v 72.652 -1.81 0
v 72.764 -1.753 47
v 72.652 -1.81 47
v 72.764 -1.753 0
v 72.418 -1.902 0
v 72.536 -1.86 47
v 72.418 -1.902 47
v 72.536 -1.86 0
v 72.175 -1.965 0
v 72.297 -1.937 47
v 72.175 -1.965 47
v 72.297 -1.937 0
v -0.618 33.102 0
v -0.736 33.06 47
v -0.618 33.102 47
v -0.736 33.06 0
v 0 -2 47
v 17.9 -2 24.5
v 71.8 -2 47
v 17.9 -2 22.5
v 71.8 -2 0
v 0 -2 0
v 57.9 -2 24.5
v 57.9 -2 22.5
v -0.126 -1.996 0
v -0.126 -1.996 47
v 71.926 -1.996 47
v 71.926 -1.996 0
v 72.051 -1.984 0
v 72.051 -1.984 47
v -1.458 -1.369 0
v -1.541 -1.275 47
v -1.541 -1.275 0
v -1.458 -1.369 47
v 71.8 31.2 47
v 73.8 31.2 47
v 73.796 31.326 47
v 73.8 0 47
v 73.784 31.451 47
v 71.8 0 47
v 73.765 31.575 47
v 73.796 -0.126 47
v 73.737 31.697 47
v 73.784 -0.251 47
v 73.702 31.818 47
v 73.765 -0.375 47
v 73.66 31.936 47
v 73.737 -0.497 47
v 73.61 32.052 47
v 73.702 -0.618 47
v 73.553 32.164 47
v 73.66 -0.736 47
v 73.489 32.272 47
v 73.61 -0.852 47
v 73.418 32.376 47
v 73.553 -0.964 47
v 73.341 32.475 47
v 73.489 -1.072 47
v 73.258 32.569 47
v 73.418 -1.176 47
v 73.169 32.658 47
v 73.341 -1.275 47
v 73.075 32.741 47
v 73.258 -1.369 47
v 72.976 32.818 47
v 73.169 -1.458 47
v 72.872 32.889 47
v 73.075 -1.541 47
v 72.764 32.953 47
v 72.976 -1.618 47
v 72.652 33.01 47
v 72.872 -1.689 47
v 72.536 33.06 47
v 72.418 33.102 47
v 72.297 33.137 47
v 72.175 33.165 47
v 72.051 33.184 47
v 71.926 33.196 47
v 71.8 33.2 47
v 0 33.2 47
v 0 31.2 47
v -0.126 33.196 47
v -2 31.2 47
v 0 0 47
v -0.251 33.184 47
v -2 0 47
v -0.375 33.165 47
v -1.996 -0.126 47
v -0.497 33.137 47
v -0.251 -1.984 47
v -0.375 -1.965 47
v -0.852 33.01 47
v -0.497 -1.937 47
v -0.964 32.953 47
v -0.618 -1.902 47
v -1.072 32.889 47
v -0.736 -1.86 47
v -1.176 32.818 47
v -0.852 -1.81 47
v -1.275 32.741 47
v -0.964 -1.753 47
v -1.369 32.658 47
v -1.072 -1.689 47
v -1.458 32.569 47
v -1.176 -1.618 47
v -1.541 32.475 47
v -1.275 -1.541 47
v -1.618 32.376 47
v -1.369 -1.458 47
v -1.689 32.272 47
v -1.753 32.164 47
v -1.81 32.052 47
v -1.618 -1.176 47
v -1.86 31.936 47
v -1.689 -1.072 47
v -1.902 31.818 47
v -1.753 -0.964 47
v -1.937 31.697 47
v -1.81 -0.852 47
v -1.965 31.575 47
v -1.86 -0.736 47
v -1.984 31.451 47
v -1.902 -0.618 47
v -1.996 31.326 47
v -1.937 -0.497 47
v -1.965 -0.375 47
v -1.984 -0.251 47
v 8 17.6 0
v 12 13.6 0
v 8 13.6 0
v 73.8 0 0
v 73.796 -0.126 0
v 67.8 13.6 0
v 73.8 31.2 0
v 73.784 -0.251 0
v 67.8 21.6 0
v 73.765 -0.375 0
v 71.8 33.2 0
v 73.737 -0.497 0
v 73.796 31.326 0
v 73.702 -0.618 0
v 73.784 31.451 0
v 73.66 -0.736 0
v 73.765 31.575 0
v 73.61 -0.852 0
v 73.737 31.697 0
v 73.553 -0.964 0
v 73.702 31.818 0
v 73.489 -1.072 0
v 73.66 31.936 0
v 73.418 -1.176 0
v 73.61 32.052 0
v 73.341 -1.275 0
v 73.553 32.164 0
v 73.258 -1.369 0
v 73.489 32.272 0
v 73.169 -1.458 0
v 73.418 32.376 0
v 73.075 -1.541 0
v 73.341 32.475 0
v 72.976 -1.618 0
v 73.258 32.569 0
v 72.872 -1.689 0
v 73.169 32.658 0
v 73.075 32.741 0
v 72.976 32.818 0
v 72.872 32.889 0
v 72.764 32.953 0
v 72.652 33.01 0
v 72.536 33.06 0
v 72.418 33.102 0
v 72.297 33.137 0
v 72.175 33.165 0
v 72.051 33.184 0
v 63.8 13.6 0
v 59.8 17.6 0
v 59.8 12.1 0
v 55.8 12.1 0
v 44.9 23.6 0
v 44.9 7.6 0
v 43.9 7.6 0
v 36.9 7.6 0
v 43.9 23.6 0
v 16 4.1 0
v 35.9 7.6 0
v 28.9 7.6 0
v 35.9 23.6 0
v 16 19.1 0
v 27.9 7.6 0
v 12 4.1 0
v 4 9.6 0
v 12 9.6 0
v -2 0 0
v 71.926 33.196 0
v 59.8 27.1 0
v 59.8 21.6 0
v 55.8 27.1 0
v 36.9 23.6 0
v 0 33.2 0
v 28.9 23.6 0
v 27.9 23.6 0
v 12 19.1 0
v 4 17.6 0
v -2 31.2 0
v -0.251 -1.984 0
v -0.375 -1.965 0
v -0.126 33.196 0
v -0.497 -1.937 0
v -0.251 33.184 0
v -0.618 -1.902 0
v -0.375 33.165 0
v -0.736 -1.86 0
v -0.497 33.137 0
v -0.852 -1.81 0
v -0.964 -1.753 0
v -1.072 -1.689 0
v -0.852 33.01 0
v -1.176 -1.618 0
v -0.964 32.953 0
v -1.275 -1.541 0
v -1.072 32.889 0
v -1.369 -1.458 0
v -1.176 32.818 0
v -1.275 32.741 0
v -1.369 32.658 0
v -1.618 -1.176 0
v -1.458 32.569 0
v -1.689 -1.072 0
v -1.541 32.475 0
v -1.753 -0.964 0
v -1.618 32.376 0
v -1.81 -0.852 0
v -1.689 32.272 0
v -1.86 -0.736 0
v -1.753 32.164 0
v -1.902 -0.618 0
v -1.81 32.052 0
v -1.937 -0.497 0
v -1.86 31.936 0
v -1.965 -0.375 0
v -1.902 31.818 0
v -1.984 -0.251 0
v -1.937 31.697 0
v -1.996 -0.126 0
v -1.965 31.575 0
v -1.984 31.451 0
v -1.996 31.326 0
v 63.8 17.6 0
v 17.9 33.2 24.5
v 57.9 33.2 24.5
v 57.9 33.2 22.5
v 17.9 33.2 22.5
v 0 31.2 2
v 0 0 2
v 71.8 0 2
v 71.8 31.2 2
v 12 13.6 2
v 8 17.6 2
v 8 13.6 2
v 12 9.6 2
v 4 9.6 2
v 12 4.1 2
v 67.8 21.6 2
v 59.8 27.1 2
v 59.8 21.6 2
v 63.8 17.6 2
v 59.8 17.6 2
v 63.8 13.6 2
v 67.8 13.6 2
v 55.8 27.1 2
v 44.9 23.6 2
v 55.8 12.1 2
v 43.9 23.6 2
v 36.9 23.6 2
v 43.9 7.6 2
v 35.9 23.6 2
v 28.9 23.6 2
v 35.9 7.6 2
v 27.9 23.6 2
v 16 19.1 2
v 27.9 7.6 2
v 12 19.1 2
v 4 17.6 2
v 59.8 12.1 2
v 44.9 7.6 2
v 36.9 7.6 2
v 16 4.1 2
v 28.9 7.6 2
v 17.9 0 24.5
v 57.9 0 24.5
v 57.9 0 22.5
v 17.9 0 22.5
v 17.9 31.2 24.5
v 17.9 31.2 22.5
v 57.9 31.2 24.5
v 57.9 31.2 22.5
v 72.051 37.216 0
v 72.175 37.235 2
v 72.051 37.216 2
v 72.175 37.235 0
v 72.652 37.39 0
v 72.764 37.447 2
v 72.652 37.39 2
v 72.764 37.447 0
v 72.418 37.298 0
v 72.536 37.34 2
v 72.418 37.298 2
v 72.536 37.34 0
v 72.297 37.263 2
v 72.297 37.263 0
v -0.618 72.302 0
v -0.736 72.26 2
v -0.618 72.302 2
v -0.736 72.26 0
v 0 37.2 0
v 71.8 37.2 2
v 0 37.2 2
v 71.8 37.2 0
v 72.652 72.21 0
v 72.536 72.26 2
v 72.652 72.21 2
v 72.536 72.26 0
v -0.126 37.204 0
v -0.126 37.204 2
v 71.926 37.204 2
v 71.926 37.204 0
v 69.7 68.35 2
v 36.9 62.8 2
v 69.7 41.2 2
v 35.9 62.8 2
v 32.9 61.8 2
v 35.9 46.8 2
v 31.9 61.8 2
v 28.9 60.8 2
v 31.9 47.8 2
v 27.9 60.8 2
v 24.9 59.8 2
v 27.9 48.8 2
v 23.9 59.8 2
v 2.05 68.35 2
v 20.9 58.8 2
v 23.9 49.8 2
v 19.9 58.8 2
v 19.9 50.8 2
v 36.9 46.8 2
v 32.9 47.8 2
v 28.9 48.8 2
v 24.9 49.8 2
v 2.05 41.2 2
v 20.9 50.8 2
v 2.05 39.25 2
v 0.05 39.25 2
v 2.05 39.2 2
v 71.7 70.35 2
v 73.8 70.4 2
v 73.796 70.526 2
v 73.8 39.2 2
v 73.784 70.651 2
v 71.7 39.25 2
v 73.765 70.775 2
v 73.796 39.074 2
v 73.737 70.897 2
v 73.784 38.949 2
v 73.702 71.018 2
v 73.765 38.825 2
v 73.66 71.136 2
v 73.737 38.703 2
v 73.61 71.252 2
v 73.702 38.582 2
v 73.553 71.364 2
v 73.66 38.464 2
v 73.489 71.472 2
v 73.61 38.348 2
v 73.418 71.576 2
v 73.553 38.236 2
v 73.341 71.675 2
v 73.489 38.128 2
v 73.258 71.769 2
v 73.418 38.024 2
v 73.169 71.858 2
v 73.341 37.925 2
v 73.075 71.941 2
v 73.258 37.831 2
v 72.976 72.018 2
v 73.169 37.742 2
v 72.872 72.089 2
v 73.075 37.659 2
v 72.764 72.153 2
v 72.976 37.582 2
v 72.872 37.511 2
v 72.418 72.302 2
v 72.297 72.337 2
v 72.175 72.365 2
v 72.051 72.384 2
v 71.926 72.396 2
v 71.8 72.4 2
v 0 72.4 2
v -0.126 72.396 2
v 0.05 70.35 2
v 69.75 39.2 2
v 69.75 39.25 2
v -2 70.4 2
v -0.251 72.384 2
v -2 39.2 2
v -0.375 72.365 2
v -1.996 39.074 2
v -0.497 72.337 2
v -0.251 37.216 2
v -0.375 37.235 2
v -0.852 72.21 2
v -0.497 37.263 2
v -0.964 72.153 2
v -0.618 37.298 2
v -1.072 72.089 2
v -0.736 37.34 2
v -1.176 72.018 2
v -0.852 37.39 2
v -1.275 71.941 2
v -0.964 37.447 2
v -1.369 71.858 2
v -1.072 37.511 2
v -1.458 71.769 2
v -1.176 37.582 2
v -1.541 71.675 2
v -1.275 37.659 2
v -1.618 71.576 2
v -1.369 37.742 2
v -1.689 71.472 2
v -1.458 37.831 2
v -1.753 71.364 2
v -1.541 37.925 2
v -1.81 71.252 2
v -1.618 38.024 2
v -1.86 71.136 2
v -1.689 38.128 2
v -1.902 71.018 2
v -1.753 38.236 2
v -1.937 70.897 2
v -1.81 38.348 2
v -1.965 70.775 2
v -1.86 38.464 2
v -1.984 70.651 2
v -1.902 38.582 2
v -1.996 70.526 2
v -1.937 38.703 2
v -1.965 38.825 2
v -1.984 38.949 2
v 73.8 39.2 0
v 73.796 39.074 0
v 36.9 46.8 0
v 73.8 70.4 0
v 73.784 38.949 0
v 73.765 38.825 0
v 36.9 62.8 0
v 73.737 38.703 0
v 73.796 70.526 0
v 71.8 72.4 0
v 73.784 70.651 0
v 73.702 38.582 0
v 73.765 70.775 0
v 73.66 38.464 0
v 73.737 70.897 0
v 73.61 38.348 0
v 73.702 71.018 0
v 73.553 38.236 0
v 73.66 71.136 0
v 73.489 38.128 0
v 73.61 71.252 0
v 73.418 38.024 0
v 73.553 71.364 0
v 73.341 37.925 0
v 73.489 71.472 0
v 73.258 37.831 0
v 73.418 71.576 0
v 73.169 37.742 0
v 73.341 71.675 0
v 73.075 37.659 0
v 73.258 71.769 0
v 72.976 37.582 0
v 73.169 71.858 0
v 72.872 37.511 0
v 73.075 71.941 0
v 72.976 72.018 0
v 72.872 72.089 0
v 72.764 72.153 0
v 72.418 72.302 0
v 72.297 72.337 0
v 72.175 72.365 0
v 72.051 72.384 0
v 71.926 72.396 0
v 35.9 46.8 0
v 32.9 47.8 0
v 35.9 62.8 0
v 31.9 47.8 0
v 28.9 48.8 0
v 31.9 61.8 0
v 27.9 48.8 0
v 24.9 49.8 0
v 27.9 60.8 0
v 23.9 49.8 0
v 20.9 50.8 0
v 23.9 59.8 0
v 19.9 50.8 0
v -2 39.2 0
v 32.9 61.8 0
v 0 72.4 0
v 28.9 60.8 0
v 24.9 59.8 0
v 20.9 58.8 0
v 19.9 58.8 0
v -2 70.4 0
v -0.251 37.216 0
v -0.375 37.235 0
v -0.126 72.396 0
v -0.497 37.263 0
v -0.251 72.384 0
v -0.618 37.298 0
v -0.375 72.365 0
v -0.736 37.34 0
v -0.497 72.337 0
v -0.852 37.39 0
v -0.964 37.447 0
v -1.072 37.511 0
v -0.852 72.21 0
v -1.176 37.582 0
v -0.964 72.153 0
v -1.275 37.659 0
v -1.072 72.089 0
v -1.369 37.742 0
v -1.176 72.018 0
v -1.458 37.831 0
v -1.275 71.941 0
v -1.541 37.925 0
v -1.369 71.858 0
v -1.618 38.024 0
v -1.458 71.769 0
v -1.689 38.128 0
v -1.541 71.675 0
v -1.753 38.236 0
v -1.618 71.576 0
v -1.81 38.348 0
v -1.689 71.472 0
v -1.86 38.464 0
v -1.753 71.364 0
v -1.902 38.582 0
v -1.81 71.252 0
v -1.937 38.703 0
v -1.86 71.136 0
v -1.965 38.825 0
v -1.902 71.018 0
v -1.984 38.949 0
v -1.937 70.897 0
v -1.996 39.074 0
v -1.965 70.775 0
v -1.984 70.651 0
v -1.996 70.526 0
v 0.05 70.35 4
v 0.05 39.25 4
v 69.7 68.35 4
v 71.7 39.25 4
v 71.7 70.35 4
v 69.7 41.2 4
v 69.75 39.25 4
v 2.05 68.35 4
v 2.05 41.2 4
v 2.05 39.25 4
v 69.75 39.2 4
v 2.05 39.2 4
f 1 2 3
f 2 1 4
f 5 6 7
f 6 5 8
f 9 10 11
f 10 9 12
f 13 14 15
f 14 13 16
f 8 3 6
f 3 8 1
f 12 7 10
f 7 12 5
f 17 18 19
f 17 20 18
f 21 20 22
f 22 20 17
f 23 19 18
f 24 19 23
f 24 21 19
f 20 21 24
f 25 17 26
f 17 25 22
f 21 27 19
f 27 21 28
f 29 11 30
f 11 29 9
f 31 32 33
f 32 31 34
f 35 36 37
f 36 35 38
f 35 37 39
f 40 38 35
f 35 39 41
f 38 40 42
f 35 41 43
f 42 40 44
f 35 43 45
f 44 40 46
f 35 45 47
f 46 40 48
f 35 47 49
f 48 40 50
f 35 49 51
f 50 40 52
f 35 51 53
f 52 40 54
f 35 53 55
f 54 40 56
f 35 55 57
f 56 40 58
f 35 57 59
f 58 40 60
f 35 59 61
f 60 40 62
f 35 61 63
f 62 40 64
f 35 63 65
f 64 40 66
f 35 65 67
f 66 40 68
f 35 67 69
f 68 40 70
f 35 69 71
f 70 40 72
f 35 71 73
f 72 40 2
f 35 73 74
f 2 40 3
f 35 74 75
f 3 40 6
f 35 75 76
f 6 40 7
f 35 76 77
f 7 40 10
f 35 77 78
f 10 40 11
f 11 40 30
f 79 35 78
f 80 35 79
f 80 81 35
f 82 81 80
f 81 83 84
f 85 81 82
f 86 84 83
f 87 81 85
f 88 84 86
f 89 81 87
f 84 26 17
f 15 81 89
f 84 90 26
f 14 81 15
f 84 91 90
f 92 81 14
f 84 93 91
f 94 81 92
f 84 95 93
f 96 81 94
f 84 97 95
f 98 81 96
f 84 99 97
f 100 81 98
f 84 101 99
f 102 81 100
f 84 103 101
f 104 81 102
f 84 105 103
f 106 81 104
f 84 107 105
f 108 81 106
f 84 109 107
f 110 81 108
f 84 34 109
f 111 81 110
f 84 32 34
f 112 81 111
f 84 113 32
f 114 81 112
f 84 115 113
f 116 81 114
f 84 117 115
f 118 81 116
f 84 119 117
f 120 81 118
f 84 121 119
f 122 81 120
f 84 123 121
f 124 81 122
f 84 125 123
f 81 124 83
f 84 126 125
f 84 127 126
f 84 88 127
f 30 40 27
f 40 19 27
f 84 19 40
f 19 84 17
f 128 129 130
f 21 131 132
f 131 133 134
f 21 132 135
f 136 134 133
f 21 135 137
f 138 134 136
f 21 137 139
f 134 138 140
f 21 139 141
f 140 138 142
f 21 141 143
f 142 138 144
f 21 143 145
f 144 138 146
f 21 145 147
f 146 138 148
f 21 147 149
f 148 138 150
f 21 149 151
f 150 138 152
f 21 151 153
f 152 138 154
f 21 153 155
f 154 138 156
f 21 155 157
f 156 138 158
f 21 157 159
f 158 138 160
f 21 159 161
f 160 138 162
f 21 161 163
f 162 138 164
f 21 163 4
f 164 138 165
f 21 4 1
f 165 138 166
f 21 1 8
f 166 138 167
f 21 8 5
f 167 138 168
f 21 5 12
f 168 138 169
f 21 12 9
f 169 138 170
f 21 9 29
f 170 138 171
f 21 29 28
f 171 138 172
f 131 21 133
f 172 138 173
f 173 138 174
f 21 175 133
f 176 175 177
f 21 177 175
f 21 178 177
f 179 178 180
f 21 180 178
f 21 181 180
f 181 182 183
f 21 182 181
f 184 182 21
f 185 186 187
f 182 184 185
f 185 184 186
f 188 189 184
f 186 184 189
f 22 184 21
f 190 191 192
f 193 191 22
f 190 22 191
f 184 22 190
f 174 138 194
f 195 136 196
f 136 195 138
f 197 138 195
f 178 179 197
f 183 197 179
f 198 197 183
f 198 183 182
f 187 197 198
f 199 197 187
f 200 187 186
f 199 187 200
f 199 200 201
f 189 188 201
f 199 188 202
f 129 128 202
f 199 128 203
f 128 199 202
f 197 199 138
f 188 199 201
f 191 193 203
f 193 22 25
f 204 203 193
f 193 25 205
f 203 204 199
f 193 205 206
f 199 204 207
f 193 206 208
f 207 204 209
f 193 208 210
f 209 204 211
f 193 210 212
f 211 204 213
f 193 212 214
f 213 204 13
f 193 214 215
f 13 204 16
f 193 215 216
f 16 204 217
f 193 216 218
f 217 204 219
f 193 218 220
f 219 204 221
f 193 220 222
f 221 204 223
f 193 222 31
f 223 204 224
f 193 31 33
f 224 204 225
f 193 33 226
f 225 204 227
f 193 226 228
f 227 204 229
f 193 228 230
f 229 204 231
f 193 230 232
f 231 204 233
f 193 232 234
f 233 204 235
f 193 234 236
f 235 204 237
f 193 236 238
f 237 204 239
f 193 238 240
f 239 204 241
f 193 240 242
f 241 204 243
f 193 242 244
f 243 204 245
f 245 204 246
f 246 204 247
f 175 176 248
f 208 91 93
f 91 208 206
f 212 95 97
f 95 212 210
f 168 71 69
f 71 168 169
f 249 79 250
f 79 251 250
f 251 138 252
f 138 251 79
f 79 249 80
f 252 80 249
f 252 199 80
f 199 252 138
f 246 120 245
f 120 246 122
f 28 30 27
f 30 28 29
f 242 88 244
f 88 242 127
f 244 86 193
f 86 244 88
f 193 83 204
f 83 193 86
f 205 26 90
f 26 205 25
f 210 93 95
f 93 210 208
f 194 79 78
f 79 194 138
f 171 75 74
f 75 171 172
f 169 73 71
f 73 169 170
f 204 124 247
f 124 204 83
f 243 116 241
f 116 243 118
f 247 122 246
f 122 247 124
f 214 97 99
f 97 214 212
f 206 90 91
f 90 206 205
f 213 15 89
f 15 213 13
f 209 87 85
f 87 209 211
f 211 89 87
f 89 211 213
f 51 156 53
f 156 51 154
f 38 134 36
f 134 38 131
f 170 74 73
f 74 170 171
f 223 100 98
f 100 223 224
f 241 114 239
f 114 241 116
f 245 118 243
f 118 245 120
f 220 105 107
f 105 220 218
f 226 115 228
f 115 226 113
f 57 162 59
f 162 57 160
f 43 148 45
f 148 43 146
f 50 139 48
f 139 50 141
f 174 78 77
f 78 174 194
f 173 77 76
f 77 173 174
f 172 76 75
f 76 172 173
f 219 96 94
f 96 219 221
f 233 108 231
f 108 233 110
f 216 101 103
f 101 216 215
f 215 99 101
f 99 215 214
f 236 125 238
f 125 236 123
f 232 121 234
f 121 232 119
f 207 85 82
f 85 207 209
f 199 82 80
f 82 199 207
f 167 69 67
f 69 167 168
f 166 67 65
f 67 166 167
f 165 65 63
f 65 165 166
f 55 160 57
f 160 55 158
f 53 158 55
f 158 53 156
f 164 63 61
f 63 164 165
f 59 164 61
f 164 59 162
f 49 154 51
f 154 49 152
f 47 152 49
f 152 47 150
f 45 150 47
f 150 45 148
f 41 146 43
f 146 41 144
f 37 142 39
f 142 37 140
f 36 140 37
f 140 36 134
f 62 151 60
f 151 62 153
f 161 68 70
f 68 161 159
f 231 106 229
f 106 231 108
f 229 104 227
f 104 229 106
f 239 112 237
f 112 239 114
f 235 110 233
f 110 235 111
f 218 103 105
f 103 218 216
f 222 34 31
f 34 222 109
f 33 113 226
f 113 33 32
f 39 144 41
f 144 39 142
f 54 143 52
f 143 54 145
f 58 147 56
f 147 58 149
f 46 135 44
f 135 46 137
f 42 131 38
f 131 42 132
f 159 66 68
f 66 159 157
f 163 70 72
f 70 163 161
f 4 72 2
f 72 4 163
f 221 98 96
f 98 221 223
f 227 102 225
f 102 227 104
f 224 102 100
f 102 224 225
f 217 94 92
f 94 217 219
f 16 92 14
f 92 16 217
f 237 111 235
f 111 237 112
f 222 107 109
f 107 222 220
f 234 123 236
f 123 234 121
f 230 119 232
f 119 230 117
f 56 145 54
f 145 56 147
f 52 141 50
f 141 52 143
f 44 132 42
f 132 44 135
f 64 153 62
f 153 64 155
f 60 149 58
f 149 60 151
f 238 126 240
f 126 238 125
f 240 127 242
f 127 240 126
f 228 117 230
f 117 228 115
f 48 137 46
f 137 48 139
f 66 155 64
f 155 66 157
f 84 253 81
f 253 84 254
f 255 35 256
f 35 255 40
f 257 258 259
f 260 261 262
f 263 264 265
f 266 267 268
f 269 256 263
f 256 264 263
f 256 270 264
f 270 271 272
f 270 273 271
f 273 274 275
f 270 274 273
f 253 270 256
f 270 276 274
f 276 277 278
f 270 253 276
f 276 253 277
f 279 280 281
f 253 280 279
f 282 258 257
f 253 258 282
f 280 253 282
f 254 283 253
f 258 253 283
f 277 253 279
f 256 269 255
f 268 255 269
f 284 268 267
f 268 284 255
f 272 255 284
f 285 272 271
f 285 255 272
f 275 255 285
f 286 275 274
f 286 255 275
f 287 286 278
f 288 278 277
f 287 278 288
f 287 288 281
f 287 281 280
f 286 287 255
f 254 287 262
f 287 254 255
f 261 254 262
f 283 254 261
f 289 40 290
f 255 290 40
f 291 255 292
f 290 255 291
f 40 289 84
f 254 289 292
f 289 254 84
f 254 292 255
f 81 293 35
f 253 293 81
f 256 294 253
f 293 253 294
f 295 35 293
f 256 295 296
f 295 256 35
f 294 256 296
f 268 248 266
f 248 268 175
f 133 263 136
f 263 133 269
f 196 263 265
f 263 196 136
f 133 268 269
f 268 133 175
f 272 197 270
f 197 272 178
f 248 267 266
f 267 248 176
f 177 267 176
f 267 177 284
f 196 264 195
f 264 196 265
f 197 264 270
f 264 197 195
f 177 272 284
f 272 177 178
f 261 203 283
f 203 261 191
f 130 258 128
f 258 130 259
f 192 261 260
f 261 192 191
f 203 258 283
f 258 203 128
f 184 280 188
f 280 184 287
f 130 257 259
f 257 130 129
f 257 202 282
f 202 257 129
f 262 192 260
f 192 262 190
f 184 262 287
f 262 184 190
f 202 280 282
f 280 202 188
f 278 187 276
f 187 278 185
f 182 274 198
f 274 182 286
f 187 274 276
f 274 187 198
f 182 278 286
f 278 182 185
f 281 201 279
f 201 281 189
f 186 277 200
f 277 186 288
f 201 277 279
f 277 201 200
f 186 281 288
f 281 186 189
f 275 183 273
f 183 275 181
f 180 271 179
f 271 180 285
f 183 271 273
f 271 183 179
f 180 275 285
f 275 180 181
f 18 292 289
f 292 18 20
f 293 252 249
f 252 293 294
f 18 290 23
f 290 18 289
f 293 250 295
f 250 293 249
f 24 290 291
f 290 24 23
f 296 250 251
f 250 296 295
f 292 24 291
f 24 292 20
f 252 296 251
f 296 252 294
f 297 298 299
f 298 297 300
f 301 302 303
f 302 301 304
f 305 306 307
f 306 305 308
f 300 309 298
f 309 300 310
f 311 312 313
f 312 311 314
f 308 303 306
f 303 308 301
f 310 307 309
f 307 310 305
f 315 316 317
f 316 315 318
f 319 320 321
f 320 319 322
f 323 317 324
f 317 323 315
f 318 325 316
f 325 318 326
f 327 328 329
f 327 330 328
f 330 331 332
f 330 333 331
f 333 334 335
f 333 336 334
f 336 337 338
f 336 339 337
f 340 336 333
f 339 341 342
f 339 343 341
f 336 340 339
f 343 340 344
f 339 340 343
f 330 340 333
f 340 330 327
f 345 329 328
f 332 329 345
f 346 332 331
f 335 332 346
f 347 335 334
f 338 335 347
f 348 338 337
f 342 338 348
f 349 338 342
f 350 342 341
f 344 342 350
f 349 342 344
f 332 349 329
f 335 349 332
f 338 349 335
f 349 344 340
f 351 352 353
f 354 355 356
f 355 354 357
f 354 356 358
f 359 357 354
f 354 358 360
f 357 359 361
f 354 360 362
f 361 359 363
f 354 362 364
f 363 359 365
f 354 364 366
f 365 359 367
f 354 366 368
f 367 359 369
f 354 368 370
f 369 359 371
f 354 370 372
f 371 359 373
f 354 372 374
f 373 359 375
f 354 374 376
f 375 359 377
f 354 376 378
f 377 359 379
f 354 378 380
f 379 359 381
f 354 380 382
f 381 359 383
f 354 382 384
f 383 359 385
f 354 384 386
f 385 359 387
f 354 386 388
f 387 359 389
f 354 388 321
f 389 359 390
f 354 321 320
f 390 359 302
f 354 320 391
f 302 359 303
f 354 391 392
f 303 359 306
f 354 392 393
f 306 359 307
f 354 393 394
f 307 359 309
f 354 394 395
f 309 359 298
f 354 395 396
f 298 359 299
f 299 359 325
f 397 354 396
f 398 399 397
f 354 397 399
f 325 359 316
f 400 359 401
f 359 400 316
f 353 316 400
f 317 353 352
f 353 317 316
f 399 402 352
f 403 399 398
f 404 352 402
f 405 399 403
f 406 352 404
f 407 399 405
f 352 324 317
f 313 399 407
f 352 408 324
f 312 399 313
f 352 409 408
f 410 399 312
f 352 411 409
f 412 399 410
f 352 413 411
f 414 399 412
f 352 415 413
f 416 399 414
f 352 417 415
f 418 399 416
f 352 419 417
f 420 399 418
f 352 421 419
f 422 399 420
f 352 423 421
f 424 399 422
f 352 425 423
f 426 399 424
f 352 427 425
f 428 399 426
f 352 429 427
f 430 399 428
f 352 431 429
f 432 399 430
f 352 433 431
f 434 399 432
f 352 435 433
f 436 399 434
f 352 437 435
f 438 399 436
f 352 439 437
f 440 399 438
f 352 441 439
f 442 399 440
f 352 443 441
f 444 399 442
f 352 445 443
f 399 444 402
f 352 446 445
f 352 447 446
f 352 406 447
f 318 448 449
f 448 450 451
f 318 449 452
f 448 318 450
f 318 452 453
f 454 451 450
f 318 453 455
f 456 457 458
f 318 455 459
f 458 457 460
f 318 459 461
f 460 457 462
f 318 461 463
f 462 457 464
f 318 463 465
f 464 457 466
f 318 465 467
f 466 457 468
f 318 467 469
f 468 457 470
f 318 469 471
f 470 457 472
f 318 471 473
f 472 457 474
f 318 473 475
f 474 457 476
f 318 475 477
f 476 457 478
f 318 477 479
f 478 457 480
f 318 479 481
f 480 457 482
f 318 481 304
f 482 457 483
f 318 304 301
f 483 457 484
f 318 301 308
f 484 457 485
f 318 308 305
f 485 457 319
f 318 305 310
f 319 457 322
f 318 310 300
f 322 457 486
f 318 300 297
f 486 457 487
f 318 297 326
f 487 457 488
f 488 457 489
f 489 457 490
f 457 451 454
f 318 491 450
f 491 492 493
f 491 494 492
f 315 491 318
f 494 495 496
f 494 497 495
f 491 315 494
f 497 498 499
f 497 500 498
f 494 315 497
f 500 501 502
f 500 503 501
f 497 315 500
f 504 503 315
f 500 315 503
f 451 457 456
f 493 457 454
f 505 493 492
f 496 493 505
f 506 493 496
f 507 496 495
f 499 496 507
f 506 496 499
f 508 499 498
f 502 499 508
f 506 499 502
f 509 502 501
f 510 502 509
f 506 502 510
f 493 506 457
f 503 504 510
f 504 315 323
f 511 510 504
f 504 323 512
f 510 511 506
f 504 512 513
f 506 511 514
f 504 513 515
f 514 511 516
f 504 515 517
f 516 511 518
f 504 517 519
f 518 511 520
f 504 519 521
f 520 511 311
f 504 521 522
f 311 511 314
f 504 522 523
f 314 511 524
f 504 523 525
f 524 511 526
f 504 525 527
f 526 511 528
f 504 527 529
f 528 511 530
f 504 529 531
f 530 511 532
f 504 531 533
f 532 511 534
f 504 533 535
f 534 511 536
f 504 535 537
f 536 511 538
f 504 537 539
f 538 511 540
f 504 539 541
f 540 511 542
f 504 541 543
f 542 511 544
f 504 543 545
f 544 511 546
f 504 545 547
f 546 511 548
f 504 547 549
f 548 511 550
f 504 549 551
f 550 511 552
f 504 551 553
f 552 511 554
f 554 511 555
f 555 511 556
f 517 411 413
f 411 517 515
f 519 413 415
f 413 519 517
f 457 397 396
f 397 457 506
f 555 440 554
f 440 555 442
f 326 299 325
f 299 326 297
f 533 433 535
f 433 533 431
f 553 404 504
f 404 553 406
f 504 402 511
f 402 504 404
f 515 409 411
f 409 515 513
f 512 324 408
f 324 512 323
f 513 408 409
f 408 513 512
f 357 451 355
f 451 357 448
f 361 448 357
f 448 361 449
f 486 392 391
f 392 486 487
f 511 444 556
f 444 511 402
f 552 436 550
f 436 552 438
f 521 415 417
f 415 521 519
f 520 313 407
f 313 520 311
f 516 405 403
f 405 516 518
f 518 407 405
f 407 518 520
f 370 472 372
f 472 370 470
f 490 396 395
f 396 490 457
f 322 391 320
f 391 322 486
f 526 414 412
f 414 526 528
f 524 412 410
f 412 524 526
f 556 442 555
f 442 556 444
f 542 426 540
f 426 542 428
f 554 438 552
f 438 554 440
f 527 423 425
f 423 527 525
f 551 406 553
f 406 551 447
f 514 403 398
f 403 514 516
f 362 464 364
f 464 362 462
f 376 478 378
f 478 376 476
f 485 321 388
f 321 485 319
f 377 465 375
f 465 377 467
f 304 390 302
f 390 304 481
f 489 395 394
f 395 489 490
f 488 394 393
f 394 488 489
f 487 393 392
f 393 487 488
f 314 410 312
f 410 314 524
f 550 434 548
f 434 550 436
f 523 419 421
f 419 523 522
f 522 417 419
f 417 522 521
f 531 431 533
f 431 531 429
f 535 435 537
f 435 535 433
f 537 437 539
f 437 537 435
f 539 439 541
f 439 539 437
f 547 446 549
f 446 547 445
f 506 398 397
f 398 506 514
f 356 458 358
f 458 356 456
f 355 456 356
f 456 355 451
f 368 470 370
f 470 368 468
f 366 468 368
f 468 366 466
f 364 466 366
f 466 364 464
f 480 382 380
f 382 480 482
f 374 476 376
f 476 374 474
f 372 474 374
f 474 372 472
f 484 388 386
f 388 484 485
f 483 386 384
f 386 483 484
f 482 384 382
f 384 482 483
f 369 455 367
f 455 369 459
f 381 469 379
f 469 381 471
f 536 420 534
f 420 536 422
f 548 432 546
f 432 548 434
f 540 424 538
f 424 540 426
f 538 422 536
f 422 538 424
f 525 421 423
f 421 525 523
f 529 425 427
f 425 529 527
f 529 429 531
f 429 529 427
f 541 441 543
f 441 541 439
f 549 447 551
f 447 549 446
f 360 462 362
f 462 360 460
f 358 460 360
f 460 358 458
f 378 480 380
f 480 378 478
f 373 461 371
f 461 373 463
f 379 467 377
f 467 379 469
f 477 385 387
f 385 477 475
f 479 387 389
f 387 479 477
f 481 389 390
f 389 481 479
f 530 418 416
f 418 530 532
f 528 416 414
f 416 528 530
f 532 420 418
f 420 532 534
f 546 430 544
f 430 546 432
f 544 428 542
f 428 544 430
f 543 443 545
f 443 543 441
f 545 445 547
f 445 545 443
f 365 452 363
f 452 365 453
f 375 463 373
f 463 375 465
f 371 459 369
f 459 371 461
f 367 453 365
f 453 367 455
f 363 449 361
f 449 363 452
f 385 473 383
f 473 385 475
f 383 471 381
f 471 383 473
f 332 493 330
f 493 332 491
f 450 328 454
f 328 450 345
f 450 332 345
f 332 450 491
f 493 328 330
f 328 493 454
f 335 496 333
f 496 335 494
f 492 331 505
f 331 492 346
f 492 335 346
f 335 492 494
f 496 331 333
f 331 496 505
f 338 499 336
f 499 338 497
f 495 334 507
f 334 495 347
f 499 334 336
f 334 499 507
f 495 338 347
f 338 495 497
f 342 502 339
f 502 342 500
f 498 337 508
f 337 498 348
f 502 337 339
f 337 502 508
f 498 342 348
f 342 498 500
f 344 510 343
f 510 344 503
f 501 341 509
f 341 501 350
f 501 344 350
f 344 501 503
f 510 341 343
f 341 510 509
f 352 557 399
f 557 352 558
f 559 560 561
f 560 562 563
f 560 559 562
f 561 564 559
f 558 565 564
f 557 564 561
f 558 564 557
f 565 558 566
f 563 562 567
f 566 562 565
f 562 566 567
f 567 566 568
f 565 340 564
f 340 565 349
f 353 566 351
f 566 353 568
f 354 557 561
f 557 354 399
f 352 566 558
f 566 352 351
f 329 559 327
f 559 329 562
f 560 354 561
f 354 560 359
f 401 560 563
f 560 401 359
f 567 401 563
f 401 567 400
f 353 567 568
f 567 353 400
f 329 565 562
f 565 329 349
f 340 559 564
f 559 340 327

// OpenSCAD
//常量定义
thick = 2;	        //盒壁厚度,盒子外圆角半径
width = 31.2;	       //内径净宽
hight = 43;	       //内径净高
long = 71.8;         //内径净长
 
hh = 6.5;          //slices倍数

xlong=thick * 2 + long;   //外径长度＝底厚＋内径长度＋盖子厚度
ylong = width+thick*2;   //外径宽度 = 底厚＋内径宽度＋盖子厚度
zlong = hight + thick*2;


//卡扣中心柱厚度
bathc = 4;

//卡扣底部长方体长度
balon = 15;



//---------------------------------------盒子部分

difference() {
	

    //外盒
    linear_extrude(height = hight + thick * 2, twist = 0, slices = hh*10) {
    offset(r = thick,$fn=100) {
      square([long ,width], center = false);
    }
   }  


	//内盒，挖空。
	translate([0,0,thick])
	{	
		cube([long,width,hight+ thick]);
	}
    

    //卡扣滑道前
    translate([long - bathc * 2, (width - bathc)/2,0])
	{	
		cube([bathc , bathc * 2 ,thick + 1]);
	}
    translate([long - bathc * 4,(width + bathc)/2,0])
	{	
       
		cube([bathc * 2,bathc ,thick + 1]);
	}

    translate([long - bathc * 4, (width + bathc)/2 - (balon - bathc)/2 ,0])
	{	
		cube([bathc,balon ,thick + 1]);
	}
    


    //卡扣滑道后
    translate([bathc, width/2 - 1.5 * bathc,0])
	{	
		cube([bathc, bathc * 2,thick + 1]);
	}
   
    translate([bathc * 2, width/2 - 1.5 * bathc,0])
	{	
		cube([bathc * 2,bathc,thick + 1]);
	}
    
    translate([bathc * 3, width/2 - 1.5 * bathc - (balon - bathc) /2,0])
	{	
		cube([bathc,balon,thick + 1]);
	}
    
    
    
    //盒子底部挖空通风
    translate([long/2, width/2 - 8,0])
	{	
		cube([1,16,thick + 2]);
    }
     
    translate([long/2 - 8,width/2 - 8,0])
	{	
		cube([1,16,thick + 2]);
	}
    
    translate([long/2 + 8,width/2 - 8,0])
	{	
		cube([1,16,thick + 2]);
	}
    

    //盒子侧壁挖空通风
    translate([xlong/2 - 20,-3,zlong/2 - 1 ])
	{	
		cube([40,50,thick]);
	}
    
}




//------------------------------------盖子部分

translate([0,ylong + 4,0]){
difference() {
    
    linear_extrude(thick, twist = 0, slices = hh*10) {
    offset(r = thick,$fn=100) {
      square([long ,width], center = false);
    }
   }  
    
	
    //盖子挖空通风
    translate([long/2,width/2 - 8,0])
	{	
		cube([1,16,thick + 2]);
	}
    
    translate([long/2 - 4,width/2 - 7,0])
	{	
		cube([1,14,thick + 2]);
	}
    translate([long/2 - 8,width/2 - 6,0])
	{	
		cube([1,12,thick + 2]);
	}
    
    translate([long/2 - 12,width/2 - 5,0])
	{	
		cube([1,10,thick + 2]);
	}
    
    translate([long/2 - 16,width/2 - 4,0])
	{	
		cube([1,8,thick + 2]);
	}
    
  }
  
   //形成边角挡格
   translate([0 + 0.05,0.05,thick])
   {	
		cube([thick,width - 0.1,thick]);
   }
   
   translate([long - thick - 0.1,0.05,thick])
   {	
       
		cube([thick,width - 0.1,thick]);
   }
   
   
   translate([thick + 0.05 ,0,thick])
   {	
		cube([long - thick * 2 - 0.1,thick,thick]);
   }
   
   
   translate([thick + 0.05 ,width - thick - 0.05,thick])
   {
		cube([long - thick * 2 - 0.1,thick,thick]);
   }

}
